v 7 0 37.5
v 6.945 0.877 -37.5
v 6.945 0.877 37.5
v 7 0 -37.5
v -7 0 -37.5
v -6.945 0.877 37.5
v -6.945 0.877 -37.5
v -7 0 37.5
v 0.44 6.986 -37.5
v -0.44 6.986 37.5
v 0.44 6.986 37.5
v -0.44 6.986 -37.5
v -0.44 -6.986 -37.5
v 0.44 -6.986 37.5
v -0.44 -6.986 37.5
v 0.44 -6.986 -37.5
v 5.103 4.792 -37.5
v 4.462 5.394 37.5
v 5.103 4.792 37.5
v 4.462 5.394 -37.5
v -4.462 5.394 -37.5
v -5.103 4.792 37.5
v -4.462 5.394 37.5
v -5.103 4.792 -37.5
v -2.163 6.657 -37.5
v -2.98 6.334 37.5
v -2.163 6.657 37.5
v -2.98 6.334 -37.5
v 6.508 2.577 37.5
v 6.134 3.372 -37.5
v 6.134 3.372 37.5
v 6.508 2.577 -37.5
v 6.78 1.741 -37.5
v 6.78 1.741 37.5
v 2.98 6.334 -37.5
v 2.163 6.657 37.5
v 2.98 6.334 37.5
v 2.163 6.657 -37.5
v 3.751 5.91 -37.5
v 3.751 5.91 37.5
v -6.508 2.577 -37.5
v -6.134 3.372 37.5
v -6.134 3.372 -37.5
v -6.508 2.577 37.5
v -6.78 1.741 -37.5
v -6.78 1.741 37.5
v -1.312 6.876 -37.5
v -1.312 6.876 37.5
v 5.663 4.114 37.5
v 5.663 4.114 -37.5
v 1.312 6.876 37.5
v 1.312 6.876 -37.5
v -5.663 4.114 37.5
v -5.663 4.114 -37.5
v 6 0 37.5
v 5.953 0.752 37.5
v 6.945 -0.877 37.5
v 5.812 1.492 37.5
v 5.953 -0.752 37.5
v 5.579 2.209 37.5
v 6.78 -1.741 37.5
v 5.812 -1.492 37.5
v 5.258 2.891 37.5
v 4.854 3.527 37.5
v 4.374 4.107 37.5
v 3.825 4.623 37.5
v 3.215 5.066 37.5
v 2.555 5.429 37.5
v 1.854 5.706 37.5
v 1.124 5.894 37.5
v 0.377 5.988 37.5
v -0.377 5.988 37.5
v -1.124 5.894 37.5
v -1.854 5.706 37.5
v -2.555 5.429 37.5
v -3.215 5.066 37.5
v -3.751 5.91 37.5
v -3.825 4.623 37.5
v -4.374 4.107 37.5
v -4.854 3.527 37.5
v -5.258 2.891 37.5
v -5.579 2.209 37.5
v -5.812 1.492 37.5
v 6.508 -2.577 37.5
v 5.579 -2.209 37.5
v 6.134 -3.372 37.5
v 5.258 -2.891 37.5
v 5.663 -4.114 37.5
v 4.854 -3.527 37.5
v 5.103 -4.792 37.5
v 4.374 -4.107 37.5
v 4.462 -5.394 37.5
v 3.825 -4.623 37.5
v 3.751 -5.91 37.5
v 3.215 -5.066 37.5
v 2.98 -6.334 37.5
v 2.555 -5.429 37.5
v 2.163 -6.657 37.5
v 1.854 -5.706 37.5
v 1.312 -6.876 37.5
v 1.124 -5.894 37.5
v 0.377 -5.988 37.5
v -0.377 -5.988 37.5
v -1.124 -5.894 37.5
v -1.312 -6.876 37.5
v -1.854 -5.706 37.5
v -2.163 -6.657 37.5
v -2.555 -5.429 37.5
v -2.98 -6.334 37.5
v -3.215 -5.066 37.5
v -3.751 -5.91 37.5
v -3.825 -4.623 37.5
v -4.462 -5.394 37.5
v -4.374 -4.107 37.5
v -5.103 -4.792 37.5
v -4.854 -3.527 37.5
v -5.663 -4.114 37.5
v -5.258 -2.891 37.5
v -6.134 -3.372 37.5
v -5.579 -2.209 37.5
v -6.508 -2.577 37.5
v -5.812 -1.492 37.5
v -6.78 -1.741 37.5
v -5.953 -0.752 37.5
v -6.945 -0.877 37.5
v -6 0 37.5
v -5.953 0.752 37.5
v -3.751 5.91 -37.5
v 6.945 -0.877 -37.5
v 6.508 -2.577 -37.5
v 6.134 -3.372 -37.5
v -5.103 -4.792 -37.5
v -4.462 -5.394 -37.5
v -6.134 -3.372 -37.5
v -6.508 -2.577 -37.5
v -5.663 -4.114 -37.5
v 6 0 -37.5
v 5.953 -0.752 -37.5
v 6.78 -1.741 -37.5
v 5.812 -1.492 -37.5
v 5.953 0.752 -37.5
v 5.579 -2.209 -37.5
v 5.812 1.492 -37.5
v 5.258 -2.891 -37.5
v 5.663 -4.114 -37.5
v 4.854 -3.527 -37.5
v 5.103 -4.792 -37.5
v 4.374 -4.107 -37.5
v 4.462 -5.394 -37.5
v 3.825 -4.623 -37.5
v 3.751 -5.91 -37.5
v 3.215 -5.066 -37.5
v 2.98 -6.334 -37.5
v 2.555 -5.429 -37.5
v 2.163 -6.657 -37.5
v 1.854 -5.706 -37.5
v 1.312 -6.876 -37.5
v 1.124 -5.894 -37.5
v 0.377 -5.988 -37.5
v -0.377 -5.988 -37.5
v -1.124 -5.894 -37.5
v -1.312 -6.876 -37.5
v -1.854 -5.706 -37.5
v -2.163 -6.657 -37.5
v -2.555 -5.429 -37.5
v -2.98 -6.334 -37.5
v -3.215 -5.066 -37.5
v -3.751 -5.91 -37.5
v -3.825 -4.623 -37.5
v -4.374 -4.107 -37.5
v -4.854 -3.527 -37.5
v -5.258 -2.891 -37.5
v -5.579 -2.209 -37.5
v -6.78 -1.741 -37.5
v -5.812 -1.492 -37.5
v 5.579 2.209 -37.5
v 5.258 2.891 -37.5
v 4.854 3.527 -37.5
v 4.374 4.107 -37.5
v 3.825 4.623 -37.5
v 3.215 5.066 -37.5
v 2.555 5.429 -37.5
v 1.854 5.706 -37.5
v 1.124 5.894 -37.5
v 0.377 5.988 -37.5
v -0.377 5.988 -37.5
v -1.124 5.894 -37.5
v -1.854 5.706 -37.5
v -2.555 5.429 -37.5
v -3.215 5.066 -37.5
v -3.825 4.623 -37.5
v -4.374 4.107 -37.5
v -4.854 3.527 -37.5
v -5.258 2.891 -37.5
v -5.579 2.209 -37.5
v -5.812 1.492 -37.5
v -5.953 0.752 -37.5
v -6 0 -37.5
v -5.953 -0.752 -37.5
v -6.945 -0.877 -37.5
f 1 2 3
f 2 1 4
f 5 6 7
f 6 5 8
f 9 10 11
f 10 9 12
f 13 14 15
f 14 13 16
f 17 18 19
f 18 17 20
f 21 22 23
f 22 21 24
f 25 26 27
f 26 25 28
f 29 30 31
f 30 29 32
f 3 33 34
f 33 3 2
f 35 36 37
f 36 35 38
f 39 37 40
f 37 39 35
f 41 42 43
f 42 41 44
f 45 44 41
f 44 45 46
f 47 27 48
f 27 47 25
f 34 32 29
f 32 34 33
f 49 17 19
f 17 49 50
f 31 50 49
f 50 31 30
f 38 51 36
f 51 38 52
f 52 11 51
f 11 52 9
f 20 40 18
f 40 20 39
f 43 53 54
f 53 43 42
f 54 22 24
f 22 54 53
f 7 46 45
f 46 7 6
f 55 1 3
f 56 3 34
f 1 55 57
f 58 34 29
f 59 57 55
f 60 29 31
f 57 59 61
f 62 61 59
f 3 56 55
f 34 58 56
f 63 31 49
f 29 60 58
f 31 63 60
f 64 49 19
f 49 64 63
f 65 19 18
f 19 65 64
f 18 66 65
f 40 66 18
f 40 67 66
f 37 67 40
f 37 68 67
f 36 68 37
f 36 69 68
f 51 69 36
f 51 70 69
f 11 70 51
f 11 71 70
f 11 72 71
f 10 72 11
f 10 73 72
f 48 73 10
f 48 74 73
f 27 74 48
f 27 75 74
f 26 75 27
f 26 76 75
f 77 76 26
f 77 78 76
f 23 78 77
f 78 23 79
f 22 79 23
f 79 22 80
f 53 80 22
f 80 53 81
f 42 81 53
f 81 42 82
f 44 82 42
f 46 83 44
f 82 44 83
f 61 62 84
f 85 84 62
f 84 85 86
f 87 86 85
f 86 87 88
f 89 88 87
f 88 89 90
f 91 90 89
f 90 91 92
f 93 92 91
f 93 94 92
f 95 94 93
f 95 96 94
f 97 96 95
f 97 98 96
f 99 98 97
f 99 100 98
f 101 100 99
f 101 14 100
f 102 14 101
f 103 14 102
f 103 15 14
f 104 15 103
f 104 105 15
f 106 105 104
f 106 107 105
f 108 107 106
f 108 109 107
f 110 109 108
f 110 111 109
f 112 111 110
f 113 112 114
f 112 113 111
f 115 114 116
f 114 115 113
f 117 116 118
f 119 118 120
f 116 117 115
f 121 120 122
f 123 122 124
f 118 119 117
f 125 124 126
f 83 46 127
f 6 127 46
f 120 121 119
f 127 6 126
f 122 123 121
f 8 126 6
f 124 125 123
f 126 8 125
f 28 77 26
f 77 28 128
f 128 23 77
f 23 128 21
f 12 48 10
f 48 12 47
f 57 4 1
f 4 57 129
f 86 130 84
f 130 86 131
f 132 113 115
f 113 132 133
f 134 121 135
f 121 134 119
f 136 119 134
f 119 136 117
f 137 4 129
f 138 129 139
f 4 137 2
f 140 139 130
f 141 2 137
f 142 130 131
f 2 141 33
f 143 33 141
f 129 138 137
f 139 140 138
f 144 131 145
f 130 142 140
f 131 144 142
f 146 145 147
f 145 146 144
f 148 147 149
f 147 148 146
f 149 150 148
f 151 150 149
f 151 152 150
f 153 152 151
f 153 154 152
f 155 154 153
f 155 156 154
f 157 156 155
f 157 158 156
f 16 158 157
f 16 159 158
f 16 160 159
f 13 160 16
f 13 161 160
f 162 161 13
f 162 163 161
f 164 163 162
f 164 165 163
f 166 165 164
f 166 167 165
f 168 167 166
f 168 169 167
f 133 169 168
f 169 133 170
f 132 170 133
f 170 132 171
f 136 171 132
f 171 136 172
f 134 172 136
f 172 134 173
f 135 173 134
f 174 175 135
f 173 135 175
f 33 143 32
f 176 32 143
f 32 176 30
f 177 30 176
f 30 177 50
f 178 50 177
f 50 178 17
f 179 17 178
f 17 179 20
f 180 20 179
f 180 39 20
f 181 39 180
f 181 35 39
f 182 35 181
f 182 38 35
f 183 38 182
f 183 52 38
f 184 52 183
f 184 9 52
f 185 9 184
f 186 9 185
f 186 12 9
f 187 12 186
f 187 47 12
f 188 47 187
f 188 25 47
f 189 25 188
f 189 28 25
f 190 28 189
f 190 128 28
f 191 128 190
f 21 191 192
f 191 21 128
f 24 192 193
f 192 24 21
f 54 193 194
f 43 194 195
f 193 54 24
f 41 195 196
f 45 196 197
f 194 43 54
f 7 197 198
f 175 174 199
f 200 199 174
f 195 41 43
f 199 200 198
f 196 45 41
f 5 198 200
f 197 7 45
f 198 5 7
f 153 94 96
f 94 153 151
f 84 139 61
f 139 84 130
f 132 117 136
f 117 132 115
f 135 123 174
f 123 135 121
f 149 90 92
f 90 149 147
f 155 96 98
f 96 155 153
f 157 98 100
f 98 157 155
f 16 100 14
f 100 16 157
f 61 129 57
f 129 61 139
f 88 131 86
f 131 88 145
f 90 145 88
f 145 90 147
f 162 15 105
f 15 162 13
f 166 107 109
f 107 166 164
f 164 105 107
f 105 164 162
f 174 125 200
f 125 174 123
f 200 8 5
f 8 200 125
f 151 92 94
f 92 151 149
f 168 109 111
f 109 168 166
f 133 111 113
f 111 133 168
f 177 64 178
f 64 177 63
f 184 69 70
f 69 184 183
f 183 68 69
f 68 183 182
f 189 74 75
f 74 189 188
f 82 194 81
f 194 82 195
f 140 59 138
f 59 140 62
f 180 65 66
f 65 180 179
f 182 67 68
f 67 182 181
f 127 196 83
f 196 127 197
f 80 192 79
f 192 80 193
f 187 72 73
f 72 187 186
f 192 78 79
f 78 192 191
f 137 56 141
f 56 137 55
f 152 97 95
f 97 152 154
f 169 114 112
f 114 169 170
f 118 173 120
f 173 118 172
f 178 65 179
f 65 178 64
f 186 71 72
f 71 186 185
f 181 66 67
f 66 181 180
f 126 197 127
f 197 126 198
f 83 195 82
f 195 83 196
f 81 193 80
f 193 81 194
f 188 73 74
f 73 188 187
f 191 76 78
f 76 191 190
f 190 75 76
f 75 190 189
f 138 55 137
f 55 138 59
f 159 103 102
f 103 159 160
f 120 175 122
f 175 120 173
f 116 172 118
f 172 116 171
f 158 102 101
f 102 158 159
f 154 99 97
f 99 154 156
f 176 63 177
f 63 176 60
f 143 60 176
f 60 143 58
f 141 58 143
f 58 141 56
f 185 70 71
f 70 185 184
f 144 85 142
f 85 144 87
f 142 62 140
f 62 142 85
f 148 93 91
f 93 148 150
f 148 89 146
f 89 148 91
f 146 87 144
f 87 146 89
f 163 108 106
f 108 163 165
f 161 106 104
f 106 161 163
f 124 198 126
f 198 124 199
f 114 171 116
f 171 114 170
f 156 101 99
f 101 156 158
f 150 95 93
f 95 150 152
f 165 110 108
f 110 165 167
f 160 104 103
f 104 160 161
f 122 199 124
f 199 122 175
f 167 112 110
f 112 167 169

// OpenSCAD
$fn = 50;


difference() {
	union() {
		translate(v = [0, 0, -37.5000000000]) {
			cylinder(h = 75, r = 7.0000000000);
		}
	}
	union() {
		translate(v = [0, 0, -100.0000000000]) {
			cylinder(h = 200, r = 6);
		}
	}
}
